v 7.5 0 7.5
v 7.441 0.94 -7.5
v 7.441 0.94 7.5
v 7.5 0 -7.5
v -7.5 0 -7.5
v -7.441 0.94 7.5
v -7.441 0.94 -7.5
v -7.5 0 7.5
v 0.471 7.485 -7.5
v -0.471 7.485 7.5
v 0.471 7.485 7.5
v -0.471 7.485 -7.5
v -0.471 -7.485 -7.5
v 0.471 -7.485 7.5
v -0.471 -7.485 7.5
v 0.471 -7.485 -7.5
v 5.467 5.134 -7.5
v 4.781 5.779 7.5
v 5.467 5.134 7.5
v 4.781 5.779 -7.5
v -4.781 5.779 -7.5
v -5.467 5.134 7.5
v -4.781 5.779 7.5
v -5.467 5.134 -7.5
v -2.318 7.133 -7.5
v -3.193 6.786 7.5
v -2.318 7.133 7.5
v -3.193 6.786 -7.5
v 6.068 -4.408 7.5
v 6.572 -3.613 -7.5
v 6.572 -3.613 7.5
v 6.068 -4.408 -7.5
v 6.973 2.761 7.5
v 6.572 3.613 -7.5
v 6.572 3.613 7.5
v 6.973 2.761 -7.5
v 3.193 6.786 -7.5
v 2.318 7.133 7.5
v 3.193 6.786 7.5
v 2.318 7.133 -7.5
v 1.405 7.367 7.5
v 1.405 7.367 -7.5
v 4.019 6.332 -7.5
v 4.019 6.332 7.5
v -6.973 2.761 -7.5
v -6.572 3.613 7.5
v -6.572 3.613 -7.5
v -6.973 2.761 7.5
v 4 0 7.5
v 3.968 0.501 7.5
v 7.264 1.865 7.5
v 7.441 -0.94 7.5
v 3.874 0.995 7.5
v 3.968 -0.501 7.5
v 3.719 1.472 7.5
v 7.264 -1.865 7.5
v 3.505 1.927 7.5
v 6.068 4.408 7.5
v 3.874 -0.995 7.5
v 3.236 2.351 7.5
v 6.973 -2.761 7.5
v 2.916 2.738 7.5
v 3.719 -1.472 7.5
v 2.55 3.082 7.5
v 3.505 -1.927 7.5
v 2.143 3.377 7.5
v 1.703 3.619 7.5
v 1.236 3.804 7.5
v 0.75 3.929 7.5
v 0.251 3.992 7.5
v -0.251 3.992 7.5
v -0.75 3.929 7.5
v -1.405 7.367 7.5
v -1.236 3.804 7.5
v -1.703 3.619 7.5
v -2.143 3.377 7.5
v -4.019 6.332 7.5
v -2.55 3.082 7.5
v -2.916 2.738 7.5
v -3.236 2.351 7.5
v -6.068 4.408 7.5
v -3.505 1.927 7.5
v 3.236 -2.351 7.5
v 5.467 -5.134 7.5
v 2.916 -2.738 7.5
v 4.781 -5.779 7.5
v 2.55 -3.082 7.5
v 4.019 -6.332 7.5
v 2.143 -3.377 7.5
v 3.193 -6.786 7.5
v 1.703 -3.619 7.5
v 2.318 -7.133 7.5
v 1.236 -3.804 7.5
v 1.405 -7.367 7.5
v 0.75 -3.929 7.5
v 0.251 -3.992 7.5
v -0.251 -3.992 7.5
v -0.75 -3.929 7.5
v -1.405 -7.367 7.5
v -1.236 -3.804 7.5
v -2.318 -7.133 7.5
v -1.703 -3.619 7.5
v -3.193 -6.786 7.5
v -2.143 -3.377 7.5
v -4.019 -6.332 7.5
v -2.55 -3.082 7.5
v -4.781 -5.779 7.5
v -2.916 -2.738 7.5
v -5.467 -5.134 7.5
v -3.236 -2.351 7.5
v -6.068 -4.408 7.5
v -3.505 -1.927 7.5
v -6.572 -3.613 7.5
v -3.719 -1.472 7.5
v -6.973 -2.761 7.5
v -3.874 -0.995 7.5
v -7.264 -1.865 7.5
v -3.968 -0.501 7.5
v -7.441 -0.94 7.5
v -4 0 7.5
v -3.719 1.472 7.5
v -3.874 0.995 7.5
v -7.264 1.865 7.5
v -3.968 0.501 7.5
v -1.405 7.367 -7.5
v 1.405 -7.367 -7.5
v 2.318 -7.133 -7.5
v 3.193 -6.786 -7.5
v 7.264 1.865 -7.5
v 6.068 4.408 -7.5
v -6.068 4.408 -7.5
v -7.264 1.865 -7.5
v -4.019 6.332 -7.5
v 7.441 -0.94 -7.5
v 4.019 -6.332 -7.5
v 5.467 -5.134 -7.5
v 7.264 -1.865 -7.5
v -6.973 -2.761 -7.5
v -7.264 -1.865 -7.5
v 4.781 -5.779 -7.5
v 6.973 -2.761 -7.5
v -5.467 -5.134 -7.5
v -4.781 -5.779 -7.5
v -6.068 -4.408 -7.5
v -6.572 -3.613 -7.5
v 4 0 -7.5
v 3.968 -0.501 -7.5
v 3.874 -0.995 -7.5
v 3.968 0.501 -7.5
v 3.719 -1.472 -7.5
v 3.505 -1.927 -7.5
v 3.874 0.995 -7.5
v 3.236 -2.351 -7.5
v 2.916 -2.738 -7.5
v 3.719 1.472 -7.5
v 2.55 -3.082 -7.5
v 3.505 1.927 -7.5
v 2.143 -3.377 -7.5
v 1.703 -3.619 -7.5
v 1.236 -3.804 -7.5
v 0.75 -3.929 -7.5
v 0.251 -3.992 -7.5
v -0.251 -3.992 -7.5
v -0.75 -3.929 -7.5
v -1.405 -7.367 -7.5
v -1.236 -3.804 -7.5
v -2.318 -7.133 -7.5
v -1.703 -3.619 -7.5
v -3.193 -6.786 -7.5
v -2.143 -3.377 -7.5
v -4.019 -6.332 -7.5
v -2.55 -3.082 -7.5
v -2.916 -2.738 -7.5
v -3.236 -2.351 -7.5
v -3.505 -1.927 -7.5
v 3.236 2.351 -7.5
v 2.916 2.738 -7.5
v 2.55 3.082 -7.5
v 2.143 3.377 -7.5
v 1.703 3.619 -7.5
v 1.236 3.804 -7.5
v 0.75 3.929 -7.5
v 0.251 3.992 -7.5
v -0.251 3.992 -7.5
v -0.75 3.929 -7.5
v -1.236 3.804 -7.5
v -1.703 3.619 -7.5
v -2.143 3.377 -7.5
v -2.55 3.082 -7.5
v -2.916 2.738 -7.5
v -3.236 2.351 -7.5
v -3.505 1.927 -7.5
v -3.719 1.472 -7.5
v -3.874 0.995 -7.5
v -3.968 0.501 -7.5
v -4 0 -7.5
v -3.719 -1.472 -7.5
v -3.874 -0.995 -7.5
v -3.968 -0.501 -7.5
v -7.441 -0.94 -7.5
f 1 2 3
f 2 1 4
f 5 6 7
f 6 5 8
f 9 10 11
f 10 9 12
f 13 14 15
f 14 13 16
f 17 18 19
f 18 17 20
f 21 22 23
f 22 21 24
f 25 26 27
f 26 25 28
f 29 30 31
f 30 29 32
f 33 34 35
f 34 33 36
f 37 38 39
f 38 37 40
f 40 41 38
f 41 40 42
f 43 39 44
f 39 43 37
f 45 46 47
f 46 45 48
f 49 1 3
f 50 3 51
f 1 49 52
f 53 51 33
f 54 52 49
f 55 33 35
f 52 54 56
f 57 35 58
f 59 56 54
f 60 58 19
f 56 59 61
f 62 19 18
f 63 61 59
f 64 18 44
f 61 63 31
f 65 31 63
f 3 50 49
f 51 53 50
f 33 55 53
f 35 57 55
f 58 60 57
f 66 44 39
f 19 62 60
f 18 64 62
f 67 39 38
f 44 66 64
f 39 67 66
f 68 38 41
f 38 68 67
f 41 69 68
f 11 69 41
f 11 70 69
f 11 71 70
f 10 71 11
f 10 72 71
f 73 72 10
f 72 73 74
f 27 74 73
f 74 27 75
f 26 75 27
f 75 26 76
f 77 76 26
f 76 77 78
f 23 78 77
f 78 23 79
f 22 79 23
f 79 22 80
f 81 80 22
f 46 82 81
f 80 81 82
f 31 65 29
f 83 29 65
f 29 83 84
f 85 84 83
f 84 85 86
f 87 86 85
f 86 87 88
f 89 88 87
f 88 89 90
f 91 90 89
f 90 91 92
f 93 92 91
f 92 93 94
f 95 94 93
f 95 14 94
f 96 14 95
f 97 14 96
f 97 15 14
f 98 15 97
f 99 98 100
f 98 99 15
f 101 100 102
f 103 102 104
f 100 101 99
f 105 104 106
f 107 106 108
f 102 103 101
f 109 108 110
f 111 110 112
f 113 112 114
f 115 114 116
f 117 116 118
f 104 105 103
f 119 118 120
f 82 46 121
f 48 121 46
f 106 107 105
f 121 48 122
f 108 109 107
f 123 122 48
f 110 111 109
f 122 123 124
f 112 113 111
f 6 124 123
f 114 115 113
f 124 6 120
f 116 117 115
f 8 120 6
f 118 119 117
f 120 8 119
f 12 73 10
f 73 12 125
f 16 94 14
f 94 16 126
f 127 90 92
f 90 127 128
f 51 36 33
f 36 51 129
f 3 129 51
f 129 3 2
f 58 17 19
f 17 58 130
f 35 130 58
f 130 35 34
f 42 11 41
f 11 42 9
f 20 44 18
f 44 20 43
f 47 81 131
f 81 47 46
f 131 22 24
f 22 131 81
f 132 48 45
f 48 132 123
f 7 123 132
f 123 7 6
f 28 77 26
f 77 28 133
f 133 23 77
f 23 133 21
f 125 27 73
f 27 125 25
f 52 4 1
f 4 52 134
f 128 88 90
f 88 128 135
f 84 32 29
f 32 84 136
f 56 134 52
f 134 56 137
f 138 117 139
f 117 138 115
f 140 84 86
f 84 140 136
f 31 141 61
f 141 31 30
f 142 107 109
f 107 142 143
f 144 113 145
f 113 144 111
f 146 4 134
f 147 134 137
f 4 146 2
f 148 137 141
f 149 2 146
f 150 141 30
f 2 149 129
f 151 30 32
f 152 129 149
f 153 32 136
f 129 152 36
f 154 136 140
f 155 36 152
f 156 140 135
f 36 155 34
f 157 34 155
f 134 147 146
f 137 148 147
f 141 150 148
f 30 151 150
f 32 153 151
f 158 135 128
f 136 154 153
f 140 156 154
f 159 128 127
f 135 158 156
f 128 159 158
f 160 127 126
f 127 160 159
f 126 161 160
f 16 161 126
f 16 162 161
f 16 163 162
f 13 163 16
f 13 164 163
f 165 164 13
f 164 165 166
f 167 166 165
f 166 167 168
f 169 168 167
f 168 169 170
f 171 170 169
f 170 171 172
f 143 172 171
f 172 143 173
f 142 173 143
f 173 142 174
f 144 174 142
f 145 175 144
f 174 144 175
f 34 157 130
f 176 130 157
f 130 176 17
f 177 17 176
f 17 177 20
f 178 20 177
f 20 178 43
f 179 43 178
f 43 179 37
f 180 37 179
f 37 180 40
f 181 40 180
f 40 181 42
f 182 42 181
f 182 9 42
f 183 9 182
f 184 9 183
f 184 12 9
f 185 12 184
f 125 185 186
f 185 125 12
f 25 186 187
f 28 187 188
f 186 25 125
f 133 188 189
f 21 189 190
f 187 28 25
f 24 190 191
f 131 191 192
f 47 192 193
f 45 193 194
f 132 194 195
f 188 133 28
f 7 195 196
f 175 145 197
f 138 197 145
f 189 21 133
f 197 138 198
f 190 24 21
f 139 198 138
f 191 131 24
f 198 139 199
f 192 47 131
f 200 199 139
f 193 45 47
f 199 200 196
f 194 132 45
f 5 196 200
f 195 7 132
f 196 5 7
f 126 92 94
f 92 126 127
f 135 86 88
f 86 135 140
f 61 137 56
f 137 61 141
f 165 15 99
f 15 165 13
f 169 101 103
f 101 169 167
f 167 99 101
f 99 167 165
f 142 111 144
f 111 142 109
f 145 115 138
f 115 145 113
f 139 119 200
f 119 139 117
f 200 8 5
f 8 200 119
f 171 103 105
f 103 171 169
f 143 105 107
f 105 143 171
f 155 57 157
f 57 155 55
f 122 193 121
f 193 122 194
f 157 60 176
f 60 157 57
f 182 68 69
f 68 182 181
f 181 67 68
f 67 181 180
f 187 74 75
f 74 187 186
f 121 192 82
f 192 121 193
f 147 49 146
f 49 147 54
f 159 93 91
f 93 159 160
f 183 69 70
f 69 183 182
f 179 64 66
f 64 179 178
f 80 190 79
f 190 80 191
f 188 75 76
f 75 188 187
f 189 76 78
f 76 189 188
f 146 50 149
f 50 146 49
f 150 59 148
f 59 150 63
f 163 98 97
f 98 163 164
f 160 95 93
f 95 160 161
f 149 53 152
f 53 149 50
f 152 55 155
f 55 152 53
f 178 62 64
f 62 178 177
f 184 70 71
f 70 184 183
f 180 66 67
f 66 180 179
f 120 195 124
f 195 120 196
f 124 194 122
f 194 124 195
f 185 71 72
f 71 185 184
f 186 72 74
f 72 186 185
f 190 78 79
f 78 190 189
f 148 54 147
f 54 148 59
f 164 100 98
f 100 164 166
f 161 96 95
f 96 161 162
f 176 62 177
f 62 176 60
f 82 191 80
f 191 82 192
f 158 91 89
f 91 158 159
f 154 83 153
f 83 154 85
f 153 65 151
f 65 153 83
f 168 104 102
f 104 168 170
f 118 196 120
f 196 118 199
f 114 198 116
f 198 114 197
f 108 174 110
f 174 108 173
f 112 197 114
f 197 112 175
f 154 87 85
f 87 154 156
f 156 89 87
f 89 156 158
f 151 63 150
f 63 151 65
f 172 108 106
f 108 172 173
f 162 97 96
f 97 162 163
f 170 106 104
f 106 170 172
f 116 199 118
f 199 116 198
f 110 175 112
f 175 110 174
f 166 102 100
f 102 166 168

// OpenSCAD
$fn = 50;


difference() {
	union() {
		translate(v = [0, 0, -7.5000000000]) {
			cylinder(h = 15, r = 7.5000000000);
		}
	}
	union() {
		translate(v = [0, 0, -100.0000000000]) {
			cylinder(h = 200, r = 4.0000000000);
		}
	}
}
